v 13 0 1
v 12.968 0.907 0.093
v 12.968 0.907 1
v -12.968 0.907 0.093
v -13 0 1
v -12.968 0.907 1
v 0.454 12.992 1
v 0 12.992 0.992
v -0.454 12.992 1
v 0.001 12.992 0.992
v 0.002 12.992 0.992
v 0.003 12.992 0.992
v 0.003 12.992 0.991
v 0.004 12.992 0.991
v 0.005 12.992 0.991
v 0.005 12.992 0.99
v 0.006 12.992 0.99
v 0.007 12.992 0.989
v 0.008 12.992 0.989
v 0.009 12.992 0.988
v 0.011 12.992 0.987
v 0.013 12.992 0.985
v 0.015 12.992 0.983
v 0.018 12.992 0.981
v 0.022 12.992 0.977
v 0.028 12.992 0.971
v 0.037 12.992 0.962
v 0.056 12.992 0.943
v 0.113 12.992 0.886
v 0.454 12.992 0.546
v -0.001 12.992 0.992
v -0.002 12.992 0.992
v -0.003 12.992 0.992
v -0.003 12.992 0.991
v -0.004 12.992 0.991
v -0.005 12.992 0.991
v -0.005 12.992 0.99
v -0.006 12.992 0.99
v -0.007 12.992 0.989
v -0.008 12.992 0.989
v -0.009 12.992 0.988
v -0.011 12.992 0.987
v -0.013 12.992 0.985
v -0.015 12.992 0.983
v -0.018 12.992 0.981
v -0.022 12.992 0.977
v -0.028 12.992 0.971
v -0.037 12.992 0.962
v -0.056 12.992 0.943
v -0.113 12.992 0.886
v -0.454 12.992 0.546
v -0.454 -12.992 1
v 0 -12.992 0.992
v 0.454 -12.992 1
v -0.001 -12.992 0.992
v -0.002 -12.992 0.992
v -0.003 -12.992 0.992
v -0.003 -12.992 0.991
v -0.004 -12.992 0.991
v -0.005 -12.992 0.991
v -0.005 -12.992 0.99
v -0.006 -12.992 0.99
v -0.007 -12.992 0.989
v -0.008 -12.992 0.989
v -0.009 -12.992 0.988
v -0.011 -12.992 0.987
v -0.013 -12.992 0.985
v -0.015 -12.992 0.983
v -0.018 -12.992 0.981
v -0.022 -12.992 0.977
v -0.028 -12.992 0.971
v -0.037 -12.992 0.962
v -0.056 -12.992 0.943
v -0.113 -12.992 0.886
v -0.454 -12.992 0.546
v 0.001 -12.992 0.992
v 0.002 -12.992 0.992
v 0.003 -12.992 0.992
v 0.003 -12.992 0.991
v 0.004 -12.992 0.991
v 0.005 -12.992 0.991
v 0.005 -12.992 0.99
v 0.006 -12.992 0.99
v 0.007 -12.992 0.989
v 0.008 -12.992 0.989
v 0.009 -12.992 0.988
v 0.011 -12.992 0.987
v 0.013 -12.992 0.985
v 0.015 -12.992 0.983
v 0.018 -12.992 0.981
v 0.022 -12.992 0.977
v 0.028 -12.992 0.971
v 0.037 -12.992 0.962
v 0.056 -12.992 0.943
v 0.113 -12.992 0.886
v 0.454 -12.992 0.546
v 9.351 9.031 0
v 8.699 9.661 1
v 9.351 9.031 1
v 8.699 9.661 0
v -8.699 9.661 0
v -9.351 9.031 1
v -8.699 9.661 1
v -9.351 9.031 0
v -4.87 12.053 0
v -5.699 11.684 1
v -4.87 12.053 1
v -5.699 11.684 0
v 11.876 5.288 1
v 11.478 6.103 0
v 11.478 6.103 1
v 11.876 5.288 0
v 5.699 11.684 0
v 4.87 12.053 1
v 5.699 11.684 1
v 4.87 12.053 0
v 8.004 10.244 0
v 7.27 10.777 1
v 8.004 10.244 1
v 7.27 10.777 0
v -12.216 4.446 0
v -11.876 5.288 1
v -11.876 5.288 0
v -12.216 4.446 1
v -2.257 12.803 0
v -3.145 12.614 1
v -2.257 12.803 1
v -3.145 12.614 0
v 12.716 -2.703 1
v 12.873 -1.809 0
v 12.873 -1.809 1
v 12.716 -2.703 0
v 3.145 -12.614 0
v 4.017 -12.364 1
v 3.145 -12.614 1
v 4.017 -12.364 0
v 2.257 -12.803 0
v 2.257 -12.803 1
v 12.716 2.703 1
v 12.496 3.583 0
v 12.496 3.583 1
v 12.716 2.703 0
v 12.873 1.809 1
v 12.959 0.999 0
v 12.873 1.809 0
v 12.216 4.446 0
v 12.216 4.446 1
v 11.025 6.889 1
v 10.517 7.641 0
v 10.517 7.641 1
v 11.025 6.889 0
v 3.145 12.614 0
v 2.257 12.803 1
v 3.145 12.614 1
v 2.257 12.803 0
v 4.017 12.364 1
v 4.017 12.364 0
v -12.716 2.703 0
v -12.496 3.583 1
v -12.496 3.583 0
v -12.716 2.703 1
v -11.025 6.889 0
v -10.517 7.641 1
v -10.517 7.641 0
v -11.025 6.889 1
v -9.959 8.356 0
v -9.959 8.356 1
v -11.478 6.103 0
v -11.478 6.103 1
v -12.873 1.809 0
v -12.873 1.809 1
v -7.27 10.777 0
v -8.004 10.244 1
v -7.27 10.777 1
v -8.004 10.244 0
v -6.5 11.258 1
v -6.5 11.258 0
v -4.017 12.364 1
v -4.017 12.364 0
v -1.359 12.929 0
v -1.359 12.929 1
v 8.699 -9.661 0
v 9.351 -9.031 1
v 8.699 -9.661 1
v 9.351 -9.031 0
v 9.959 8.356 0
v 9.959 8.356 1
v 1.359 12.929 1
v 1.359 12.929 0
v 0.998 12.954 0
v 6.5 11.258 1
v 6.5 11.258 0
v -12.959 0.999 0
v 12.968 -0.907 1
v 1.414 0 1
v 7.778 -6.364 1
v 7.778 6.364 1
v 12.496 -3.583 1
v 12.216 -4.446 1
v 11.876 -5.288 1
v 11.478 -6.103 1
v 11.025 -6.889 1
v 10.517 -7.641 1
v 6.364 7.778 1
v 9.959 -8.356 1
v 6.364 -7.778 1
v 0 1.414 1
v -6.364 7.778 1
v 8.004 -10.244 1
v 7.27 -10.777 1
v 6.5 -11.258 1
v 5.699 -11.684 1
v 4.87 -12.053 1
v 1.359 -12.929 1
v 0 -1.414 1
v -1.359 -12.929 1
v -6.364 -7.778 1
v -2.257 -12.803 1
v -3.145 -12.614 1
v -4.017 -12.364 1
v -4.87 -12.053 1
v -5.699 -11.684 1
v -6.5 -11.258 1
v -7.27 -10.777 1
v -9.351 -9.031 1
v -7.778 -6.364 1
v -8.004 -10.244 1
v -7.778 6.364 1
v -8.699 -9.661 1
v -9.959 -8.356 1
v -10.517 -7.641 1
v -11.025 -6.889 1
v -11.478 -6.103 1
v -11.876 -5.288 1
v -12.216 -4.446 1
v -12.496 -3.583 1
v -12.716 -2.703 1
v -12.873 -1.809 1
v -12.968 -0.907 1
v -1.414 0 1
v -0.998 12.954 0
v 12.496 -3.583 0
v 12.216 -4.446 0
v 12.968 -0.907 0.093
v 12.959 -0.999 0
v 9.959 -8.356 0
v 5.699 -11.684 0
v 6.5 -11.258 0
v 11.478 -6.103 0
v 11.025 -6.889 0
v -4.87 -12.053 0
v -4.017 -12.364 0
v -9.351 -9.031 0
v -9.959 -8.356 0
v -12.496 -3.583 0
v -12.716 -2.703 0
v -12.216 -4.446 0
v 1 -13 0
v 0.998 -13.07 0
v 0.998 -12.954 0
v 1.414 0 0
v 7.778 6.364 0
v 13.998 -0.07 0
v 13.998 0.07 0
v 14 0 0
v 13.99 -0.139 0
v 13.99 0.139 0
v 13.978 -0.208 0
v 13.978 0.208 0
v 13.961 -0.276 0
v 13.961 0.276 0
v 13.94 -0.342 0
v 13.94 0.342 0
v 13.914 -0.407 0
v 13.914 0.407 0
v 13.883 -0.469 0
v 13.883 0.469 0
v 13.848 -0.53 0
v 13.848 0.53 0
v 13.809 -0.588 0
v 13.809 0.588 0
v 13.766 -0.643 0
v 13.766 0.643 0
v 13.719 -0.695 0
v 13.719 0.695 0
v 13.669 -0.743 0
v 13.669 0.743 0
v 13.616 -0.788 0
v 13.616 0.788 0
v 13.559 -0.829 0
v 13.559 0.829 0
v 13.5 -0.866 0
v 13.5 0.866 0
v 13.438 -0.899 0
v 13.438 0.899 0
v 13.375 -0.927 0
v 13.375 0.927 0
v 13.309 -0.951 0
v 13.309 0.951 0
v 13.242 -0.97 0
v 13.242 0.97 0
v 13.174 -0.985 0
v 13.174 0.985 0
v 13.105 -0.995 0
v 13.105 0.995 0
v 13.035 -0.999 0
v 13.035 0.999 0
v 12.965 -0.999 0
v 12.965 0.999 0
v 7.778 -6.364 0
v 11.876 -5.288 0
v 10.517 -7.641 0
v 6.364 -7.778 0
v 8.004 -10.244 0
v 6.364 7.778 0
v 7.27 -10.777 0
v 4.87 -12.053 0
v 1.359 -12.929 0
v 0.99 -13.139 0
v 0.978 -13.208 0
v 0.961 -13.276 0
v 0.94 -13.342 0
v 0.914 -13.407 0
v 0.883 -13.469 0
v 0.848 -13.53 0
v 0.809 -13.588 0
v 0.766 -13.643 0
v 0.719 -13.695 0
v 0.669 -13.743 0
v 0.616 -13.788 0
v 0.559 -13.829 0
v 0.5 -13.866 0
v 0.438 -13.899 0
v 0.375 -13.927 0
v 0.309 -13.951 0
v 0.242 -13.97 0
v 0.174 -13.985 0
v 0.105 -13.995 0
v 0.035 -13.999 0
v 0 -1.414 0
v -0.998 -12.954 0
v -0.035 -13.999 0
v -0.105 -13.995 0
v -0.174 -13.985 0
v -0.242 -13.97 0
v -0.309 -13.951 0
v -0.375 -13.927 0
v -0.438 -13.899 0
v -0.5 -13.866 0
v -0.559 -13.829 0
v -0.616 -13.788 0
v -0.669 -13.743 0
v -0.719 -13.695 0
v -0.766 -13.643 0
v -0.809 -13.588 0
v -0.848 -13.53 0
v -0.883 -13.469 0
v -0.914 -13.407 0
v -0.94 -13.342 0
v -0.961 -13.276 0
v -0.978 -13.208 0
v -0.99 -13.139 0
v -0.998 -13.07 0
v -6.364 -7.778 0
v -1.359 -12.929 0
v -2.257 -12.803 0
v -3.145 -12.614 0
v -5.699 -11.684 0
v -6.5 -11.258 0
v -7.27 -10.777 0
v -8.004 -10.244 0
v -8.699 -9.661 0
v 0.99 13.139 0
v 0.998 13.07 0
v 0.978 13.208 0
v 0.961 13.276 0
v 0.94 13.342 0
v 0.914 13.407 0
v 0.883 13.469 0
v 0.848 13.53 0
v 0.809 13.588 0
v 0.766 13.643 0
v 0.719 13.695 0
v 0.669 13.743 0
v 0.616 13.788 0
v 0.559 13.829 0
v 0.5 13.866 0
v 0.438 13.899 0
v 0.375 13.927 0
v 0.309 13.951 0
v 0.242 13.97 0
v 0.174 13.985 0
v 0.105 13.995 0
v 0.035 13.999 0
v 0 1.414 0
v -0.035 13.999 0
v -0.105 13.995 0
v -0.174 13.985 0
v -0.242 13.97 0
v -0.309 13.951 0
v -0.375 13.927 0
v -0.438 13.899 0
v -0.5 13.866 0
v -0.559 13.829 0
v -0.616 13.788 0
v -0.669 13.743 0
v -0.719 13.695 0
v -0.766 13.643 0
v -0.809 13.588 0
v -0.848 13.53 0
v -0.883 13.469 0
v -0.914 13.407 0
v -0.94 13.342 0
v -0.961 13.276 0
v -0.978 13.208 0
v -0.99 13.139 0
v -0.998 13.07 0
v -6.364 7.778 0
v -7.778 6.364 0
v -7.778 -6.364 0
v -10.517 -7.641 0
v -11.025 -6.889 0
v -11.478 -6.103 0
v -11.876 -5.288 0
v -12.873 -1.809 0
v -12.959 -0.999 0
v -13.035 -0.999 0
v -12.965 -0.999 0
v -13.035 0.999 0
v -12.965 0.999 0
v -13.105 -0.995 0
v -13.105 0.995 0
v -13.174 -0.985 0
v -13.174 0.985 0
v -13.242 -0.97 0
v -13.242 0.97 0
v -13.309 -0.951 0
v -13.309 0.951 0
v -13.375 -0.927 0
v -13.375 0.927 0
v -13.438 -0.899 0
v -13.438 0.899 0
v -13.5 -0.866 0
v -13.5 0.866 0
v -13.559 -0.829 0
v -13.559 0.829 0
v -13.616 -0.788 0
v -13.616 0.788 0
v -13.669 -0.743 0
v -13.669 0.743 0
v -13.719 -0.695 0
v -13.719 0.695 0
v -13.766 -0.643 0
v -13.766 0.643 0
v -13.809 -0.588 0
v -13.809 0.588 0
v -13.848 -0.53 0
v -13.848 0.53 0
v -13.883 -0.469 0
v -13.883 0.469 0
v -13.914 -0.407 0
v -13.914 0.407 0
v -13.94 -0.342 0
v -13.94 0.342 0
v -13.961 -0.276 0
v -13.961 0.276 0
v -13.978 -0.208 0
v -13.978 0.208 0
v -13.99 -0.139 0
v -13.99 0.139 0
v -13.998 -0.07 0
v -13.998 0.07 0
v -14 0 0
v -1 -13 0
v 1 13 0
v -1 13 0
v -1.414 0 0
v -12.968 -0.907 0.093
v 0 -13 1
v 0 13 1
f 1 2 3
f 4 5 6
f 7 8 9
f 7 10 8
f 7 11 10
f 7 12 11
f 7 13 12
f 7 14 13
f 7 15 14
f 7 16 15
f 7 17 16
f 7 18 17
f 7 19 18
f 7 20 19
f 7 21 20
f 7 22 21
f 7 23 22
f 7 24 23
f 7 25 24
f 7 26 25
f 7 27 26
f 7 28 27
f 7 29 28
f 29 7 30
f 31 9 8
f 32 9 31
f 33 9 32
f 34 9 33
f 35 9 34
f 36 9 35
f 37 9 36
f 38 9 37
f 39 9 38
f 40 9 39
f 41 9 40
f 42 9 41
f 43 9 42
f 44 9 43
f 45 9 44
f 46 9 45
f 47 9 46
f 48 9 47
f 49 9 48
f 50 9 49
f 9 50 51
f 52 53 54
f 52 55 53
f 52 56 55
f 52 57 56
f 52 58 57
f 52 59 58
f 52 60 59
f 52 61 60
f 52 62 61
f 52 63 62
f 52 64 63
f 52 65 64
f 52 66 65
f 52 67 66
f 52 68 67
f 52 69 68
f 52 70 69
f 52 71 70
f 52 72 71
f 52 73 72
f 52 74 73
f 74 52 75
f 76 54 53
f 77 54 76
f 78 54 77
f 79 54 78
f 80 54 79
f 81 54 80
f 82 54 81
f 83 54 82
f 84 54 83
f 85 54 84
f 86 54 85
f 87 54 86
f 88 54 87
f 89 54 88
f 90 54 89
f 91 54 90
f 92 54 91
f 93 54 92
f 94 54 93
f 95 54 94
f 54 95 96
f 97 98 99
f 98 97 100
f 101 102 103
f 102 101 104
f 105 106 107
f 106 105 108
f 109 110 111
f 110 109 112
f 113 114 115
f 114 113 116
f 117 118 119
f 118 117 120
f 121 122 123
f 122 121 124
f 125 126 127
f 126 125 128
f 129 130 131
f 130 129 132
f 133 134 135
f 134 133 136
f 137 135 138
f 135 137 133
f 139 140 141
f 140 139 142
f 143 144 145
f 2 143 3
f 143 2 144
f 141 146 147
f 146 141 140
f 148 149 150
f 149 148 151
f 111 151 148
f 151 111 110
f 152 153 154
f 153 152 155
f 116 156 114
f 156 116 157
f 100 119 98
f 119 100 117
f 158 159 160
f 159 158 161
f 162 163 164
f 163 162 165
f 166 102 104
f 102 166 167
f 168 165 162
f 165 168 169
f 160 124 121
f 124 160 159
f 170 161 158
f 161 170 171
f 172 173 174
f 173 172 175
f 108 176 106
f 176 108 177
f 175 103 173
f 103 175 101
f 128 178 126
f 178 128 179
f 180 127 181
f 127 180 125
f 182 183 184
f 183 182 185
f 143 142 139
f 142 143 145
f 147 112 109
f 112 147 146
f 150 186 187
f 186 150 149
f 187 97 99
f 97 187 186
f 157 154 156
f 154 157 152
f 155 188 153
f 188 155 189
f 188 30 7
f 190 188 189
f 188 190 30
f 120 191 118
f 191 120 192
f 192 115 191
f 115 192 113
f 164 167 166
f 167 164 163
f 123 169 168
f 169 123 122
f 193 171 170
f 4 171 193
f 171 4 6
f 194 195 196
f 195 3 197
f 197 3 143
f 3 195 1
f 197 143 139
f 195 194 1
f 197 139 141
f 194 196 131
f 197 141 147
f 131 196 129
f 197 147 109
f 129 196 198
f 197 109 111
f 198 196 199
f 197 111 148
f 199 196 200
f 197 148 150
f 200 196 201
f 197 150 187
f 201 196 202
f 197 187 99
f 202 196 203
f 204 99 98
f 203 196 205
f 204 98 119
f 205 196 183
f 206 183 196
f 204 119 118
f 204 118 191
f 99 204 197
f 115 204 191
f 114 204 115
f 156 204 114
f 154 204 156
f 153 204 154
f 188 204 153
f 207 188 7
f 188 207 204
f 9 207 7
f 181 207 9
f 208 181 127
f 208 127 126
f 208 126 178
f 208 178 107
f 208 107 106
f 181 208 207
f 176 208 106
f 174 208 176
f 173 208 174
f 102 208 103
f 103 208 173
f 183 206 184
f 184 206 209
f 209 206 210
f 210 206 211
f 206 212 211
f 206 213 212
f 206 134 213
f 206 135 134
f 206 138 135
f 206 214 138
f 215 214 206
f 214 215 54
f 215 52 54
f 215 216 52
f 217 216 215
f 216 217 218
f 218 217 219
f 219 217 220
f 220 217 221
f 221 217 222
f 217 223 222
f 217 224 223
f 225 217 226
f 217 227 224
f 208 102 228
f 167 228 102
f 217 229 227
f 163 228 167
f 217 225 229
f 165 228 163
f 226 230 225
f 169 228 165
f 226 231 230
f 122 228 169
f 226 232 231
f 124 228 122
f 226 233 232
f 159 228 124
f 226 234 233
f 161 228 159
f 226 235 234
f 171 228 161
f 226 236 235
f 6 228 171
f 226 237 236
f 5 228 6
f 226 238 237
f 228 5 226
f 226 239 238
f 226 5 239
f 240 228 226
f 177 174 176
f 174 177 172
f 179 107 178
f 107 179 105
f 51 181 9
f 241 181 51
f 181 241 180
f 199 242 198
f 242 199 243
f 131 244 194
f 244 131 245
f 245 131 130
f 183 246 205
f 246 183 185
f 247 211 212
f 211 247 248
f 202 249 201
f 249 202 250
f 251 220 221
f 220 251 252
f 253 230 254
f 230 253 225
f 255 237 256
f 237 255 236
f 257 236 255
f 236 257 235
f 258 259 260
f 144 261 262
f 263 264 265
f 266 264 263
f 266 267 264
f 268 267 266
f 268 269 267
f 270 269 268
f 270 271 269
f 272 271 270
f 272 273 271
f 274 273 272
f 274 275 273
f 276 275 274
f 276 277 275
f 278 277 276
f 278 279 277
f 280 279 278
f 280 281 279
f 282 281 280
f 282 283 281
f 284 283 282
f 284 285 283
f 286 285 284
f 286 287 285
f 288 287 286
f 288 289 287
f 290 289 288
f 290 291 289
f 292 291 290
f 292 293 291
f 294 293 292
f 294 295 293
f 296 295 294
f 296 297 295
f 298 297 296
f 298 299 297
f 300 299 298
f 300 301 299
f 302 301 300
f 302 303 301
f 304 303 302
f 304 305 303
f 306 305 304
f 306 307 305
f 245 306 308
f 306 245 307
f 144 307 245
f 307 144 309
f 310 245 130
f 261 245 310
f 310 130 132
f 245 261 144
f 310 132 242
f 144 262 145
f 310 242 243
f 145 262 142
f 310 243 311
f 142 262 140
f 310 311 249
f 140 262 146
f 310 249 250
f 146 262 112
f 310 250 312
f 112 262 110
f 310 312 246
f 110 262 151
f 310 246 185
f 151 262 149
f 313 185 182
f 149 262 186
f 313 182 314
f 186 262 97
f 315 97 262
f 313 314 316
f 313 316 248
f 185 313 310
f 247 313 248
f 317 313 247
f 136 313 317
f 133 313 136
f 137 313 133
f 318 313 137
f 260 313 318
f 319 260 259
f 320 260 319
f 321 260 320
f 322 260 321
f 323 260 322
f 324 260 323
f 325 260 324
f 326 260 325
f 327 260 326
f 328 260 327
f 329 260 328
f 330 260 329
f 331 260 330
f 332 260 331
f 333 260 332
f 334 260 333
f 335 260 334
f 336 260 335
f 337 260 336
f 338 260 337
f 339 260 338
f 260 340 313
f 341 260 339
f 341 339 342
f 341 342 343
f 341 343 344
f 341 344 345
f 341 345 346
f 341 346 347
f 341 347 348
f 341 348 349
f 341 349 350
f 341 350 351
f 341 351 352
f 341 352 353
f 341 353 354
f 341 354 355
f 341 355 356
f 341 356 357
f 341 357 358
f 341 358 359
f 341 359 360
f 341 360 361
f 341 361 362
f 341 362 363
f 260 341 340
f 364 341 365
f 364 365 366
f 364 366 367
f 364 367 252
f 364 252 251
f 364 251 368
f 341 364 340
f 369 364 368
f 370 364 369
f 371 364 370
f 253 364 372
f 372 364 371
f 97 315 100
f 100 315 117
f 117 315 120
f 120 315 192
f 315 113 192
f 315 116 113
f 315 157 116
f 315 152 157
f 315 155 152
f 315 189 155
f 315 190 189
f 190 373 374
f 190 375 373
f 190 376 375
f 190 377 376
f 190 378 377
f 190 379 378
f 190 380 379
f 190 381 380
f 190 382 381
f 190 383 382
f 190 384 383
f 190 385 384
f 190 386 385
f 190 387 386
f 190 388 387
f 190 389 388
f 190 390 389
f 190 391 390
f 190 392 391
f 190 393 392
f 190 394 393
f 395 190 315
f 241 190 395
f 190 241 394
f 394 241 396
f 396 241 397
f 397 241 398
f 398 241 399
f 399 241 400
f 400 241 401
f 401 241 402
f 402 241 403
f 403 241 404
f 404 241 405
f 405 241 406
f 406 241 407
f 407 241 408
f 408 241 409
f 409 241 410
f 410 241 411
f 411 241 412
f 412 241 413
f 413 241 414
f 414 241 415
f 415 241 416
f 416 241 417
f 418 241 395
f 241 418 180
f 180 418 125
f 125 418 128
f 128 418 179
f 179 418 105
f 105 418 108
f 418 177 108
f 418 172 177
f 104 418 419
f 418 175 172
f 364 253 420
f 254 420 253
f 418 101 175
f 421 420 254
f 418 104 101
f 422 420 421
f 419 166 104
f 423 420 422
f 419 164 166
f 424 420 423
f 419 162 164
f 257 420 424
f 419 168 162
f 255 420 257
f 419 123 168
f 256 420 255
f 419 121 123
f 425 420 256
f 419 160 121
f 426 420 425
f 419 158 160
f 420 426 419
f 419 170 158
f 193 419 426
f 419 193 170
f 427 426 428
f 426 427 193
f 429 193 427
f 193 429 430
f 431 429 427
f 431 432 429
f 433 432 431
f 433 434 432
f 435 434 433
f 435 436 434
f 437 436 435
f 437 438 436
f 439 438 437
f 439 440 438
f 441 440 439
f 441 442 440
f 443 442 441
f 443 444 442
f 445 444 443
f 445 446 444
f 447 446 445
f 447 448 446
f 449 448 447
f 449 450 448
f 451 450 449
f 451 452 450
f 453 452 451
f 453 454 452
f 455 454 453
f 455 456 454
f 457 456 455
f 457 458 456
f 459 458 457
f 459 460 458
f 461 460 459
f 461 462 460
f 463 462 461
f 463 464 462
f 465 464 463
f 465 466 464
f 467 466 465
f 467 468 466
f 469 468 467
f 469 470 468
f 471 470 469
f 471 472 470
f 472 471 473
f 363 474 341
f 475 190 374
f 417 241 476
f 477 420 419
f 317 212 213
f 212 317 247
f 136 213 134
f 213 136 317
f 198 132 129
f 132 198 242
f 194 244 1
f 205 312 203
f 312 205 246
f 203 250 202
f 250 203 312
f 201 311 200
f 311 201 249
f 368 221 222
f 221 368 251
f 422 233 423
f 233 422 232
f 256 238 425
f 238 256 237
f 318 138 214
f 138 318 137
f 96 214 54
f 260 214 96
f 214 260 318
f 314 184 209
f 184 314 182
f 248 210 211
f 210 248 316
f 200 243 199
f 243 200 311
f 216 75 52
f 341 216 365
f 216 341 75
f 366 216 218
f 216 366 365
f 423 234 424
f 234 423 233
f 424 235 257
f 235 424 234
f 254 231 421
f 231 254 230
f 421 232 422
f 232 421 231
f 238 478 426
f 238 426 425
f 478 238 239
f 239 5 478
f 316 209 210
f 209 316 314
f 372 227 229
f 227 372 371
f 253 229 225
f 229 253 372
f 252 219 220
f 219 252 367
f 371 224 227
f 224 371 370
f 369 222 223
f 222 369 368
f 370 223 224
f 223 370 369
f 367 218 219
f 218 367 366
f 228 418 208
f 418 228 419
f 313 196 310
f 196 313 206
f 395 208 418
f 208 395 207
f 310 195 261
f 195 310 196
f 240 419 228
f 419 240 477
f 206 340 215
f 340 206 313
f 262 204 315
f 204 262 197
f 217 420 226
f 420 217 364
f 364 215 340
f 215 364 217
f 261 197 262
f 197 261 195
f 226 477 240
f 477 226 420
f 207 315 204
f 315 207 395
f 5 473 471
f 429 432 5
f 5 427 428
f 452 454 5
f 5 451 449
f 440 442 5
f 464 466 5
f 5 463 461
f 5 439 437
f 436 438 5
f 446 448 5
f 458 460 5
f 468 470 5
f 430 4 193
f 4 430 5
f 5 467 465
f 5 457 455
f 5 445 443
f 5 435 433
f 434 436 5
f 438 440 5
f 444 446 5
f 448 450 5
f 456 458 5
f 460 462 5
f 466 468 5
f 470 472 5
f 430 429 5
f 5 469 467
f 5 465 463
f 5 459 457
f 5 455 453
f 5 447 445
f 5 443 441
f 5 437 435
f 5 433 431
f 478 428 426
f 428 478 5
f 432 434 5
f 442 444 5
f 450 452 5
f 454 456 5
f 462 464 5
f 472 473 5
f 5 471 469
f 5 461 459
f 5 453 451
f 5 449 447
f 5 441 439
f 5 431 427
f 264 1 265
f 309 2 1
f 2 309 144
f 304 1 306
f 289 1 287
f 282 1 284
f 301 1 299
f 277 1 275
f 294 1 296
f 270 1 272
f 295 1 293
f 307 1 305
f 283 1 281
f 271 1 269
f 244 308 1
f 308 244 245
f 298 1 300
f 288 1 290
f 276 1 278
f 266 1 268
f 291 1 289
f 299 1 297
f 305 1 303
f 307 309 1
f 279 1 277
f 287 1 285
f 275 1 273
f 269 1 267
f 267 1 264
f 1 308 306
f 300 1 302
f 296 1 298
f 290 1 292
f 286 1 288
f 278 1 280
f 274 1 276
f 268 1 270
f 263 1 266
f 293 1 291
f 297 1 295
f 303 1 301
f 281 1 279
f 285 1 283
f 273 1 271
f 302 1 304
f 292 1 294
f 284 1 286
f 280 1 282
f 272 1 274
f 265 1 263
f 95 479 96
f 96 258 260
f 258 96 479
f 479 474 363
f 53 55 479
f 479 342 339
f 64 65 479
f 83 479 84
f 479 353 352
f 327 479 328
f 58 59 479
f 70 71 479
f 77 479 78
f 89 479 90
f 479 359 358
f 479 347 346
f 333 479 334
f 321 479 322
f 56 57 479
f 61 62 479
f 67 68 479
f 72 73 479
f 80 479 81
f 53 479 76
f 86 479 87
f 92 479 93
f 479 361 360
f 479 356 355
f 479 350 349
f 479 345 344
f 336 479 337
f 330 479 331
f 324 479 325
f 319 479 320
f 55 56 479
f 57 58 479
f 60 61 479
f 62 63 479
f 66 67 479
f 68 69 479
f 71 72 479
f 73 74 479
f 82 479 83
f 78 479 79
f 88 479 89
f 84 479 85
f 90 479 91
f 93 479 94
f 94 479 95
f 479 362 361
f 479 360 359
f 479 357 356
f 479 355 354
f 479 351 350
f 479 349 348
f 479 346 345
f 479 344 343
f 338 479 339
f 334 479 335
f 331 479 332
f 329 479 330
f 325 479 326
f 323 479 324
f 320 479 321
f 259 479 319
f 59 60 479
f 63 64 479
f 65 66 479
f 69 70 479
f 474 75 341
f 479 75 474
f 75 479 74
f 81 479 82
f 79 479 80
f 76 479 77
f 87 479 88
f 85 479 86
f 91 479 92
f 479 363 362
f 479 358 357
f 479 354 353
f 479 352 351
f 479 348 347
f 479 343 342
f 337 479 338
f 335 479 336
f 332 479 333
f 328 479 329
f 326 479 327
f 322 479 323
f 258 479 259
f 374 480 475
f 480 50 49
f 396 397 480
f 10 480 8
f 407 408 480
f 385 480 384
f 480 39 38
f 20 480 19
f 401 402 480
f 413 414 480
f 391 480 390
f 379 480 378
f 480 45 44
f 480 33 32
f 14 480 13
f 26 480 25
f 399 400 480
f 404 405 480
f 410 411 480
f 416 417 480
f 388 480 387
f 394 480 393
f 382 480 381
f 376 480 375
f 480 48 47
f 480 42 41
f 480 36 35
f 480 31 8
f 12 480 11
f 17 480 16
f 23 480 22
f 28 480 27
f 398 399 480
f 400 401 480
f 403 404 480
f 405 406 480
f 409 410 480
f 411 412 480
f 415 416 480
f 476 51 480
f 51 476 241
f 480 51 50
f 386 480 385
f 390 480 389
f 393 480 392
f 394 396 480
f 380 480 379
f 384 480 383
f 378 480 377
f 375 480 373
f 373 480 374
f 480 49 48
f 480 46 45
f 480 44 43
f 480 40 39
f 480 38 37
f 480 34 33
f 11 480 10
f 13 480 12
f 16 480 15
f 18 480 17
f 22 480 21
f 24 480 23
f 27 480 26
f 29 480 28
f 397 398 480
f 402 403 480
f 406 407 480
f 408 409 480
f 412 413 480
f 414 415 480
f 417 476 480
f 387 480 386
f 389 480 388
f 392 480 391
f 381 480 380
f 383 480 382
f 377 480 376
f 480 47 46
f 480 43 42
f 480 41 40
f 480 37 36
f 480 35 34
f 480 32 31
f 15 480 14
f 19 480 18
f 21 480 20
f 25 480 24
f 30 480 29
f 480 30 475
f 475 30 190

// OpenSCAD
icon($fn=90);
*iconHole($fn=90);

module icon(diameter = 30, height = 2) {
  radius = (diameter - height * 2) / 2;
  union() {
    difference() {
      // base
      cylinder(r=radius, h=height / 2);

      // shape
      rotate([0, 0, -45]) cube([2 * diameter / 3, height, height + 1], center=true);
      rotate([0, 0, 45]) cube([2 * diameter / 3, height, height + 1], center=true);
    }

    // pins
    translate([-radius, 0, 0]) cylinder(d1=height, d2=0, h=height / 2);
    translate([radius, 0, 0]) cylinder(d1=height, d2=0, h=height / 2);
    translate([0, -radius, 0]) cylinder(d1=height, d2=0, h=height / 2);
    translate([0, radius, 0]) cylinder(d1=height, d2=0, h=height / 2);
  }
}

module iconHole(diameter = 30, height = 2, tolerance = .4) {
  radius = (diameter - height * 2 + tolerance) / 2;
  translate([0, 0, -(height + tolerance)]) {
    translate([0, 0, height / 2 + tolerance]) cylinder(d1=diameter - height * 2 + tolerance, d2=diameter + tolerance, h=height / 2 + .1);
    cylinder(r=radius, h=height + tolerance + .1);

    // pins
    translate([-radius, 0, 0]) cylinder(d1=height + tolerance, d2=0, h=height / 2);
    translate([radius, 0, 0]) cylinder(d1=height + tolerance, d2=0, h=height / 2);
    translate([0, -radius, 0]) cylinder(d1=height + tolerance, d2=0, h=height / 2);
    translate([0, radius, 0]) cylinder(d1=height + tolerance, d2=0, h=height / 2);
  }
}
